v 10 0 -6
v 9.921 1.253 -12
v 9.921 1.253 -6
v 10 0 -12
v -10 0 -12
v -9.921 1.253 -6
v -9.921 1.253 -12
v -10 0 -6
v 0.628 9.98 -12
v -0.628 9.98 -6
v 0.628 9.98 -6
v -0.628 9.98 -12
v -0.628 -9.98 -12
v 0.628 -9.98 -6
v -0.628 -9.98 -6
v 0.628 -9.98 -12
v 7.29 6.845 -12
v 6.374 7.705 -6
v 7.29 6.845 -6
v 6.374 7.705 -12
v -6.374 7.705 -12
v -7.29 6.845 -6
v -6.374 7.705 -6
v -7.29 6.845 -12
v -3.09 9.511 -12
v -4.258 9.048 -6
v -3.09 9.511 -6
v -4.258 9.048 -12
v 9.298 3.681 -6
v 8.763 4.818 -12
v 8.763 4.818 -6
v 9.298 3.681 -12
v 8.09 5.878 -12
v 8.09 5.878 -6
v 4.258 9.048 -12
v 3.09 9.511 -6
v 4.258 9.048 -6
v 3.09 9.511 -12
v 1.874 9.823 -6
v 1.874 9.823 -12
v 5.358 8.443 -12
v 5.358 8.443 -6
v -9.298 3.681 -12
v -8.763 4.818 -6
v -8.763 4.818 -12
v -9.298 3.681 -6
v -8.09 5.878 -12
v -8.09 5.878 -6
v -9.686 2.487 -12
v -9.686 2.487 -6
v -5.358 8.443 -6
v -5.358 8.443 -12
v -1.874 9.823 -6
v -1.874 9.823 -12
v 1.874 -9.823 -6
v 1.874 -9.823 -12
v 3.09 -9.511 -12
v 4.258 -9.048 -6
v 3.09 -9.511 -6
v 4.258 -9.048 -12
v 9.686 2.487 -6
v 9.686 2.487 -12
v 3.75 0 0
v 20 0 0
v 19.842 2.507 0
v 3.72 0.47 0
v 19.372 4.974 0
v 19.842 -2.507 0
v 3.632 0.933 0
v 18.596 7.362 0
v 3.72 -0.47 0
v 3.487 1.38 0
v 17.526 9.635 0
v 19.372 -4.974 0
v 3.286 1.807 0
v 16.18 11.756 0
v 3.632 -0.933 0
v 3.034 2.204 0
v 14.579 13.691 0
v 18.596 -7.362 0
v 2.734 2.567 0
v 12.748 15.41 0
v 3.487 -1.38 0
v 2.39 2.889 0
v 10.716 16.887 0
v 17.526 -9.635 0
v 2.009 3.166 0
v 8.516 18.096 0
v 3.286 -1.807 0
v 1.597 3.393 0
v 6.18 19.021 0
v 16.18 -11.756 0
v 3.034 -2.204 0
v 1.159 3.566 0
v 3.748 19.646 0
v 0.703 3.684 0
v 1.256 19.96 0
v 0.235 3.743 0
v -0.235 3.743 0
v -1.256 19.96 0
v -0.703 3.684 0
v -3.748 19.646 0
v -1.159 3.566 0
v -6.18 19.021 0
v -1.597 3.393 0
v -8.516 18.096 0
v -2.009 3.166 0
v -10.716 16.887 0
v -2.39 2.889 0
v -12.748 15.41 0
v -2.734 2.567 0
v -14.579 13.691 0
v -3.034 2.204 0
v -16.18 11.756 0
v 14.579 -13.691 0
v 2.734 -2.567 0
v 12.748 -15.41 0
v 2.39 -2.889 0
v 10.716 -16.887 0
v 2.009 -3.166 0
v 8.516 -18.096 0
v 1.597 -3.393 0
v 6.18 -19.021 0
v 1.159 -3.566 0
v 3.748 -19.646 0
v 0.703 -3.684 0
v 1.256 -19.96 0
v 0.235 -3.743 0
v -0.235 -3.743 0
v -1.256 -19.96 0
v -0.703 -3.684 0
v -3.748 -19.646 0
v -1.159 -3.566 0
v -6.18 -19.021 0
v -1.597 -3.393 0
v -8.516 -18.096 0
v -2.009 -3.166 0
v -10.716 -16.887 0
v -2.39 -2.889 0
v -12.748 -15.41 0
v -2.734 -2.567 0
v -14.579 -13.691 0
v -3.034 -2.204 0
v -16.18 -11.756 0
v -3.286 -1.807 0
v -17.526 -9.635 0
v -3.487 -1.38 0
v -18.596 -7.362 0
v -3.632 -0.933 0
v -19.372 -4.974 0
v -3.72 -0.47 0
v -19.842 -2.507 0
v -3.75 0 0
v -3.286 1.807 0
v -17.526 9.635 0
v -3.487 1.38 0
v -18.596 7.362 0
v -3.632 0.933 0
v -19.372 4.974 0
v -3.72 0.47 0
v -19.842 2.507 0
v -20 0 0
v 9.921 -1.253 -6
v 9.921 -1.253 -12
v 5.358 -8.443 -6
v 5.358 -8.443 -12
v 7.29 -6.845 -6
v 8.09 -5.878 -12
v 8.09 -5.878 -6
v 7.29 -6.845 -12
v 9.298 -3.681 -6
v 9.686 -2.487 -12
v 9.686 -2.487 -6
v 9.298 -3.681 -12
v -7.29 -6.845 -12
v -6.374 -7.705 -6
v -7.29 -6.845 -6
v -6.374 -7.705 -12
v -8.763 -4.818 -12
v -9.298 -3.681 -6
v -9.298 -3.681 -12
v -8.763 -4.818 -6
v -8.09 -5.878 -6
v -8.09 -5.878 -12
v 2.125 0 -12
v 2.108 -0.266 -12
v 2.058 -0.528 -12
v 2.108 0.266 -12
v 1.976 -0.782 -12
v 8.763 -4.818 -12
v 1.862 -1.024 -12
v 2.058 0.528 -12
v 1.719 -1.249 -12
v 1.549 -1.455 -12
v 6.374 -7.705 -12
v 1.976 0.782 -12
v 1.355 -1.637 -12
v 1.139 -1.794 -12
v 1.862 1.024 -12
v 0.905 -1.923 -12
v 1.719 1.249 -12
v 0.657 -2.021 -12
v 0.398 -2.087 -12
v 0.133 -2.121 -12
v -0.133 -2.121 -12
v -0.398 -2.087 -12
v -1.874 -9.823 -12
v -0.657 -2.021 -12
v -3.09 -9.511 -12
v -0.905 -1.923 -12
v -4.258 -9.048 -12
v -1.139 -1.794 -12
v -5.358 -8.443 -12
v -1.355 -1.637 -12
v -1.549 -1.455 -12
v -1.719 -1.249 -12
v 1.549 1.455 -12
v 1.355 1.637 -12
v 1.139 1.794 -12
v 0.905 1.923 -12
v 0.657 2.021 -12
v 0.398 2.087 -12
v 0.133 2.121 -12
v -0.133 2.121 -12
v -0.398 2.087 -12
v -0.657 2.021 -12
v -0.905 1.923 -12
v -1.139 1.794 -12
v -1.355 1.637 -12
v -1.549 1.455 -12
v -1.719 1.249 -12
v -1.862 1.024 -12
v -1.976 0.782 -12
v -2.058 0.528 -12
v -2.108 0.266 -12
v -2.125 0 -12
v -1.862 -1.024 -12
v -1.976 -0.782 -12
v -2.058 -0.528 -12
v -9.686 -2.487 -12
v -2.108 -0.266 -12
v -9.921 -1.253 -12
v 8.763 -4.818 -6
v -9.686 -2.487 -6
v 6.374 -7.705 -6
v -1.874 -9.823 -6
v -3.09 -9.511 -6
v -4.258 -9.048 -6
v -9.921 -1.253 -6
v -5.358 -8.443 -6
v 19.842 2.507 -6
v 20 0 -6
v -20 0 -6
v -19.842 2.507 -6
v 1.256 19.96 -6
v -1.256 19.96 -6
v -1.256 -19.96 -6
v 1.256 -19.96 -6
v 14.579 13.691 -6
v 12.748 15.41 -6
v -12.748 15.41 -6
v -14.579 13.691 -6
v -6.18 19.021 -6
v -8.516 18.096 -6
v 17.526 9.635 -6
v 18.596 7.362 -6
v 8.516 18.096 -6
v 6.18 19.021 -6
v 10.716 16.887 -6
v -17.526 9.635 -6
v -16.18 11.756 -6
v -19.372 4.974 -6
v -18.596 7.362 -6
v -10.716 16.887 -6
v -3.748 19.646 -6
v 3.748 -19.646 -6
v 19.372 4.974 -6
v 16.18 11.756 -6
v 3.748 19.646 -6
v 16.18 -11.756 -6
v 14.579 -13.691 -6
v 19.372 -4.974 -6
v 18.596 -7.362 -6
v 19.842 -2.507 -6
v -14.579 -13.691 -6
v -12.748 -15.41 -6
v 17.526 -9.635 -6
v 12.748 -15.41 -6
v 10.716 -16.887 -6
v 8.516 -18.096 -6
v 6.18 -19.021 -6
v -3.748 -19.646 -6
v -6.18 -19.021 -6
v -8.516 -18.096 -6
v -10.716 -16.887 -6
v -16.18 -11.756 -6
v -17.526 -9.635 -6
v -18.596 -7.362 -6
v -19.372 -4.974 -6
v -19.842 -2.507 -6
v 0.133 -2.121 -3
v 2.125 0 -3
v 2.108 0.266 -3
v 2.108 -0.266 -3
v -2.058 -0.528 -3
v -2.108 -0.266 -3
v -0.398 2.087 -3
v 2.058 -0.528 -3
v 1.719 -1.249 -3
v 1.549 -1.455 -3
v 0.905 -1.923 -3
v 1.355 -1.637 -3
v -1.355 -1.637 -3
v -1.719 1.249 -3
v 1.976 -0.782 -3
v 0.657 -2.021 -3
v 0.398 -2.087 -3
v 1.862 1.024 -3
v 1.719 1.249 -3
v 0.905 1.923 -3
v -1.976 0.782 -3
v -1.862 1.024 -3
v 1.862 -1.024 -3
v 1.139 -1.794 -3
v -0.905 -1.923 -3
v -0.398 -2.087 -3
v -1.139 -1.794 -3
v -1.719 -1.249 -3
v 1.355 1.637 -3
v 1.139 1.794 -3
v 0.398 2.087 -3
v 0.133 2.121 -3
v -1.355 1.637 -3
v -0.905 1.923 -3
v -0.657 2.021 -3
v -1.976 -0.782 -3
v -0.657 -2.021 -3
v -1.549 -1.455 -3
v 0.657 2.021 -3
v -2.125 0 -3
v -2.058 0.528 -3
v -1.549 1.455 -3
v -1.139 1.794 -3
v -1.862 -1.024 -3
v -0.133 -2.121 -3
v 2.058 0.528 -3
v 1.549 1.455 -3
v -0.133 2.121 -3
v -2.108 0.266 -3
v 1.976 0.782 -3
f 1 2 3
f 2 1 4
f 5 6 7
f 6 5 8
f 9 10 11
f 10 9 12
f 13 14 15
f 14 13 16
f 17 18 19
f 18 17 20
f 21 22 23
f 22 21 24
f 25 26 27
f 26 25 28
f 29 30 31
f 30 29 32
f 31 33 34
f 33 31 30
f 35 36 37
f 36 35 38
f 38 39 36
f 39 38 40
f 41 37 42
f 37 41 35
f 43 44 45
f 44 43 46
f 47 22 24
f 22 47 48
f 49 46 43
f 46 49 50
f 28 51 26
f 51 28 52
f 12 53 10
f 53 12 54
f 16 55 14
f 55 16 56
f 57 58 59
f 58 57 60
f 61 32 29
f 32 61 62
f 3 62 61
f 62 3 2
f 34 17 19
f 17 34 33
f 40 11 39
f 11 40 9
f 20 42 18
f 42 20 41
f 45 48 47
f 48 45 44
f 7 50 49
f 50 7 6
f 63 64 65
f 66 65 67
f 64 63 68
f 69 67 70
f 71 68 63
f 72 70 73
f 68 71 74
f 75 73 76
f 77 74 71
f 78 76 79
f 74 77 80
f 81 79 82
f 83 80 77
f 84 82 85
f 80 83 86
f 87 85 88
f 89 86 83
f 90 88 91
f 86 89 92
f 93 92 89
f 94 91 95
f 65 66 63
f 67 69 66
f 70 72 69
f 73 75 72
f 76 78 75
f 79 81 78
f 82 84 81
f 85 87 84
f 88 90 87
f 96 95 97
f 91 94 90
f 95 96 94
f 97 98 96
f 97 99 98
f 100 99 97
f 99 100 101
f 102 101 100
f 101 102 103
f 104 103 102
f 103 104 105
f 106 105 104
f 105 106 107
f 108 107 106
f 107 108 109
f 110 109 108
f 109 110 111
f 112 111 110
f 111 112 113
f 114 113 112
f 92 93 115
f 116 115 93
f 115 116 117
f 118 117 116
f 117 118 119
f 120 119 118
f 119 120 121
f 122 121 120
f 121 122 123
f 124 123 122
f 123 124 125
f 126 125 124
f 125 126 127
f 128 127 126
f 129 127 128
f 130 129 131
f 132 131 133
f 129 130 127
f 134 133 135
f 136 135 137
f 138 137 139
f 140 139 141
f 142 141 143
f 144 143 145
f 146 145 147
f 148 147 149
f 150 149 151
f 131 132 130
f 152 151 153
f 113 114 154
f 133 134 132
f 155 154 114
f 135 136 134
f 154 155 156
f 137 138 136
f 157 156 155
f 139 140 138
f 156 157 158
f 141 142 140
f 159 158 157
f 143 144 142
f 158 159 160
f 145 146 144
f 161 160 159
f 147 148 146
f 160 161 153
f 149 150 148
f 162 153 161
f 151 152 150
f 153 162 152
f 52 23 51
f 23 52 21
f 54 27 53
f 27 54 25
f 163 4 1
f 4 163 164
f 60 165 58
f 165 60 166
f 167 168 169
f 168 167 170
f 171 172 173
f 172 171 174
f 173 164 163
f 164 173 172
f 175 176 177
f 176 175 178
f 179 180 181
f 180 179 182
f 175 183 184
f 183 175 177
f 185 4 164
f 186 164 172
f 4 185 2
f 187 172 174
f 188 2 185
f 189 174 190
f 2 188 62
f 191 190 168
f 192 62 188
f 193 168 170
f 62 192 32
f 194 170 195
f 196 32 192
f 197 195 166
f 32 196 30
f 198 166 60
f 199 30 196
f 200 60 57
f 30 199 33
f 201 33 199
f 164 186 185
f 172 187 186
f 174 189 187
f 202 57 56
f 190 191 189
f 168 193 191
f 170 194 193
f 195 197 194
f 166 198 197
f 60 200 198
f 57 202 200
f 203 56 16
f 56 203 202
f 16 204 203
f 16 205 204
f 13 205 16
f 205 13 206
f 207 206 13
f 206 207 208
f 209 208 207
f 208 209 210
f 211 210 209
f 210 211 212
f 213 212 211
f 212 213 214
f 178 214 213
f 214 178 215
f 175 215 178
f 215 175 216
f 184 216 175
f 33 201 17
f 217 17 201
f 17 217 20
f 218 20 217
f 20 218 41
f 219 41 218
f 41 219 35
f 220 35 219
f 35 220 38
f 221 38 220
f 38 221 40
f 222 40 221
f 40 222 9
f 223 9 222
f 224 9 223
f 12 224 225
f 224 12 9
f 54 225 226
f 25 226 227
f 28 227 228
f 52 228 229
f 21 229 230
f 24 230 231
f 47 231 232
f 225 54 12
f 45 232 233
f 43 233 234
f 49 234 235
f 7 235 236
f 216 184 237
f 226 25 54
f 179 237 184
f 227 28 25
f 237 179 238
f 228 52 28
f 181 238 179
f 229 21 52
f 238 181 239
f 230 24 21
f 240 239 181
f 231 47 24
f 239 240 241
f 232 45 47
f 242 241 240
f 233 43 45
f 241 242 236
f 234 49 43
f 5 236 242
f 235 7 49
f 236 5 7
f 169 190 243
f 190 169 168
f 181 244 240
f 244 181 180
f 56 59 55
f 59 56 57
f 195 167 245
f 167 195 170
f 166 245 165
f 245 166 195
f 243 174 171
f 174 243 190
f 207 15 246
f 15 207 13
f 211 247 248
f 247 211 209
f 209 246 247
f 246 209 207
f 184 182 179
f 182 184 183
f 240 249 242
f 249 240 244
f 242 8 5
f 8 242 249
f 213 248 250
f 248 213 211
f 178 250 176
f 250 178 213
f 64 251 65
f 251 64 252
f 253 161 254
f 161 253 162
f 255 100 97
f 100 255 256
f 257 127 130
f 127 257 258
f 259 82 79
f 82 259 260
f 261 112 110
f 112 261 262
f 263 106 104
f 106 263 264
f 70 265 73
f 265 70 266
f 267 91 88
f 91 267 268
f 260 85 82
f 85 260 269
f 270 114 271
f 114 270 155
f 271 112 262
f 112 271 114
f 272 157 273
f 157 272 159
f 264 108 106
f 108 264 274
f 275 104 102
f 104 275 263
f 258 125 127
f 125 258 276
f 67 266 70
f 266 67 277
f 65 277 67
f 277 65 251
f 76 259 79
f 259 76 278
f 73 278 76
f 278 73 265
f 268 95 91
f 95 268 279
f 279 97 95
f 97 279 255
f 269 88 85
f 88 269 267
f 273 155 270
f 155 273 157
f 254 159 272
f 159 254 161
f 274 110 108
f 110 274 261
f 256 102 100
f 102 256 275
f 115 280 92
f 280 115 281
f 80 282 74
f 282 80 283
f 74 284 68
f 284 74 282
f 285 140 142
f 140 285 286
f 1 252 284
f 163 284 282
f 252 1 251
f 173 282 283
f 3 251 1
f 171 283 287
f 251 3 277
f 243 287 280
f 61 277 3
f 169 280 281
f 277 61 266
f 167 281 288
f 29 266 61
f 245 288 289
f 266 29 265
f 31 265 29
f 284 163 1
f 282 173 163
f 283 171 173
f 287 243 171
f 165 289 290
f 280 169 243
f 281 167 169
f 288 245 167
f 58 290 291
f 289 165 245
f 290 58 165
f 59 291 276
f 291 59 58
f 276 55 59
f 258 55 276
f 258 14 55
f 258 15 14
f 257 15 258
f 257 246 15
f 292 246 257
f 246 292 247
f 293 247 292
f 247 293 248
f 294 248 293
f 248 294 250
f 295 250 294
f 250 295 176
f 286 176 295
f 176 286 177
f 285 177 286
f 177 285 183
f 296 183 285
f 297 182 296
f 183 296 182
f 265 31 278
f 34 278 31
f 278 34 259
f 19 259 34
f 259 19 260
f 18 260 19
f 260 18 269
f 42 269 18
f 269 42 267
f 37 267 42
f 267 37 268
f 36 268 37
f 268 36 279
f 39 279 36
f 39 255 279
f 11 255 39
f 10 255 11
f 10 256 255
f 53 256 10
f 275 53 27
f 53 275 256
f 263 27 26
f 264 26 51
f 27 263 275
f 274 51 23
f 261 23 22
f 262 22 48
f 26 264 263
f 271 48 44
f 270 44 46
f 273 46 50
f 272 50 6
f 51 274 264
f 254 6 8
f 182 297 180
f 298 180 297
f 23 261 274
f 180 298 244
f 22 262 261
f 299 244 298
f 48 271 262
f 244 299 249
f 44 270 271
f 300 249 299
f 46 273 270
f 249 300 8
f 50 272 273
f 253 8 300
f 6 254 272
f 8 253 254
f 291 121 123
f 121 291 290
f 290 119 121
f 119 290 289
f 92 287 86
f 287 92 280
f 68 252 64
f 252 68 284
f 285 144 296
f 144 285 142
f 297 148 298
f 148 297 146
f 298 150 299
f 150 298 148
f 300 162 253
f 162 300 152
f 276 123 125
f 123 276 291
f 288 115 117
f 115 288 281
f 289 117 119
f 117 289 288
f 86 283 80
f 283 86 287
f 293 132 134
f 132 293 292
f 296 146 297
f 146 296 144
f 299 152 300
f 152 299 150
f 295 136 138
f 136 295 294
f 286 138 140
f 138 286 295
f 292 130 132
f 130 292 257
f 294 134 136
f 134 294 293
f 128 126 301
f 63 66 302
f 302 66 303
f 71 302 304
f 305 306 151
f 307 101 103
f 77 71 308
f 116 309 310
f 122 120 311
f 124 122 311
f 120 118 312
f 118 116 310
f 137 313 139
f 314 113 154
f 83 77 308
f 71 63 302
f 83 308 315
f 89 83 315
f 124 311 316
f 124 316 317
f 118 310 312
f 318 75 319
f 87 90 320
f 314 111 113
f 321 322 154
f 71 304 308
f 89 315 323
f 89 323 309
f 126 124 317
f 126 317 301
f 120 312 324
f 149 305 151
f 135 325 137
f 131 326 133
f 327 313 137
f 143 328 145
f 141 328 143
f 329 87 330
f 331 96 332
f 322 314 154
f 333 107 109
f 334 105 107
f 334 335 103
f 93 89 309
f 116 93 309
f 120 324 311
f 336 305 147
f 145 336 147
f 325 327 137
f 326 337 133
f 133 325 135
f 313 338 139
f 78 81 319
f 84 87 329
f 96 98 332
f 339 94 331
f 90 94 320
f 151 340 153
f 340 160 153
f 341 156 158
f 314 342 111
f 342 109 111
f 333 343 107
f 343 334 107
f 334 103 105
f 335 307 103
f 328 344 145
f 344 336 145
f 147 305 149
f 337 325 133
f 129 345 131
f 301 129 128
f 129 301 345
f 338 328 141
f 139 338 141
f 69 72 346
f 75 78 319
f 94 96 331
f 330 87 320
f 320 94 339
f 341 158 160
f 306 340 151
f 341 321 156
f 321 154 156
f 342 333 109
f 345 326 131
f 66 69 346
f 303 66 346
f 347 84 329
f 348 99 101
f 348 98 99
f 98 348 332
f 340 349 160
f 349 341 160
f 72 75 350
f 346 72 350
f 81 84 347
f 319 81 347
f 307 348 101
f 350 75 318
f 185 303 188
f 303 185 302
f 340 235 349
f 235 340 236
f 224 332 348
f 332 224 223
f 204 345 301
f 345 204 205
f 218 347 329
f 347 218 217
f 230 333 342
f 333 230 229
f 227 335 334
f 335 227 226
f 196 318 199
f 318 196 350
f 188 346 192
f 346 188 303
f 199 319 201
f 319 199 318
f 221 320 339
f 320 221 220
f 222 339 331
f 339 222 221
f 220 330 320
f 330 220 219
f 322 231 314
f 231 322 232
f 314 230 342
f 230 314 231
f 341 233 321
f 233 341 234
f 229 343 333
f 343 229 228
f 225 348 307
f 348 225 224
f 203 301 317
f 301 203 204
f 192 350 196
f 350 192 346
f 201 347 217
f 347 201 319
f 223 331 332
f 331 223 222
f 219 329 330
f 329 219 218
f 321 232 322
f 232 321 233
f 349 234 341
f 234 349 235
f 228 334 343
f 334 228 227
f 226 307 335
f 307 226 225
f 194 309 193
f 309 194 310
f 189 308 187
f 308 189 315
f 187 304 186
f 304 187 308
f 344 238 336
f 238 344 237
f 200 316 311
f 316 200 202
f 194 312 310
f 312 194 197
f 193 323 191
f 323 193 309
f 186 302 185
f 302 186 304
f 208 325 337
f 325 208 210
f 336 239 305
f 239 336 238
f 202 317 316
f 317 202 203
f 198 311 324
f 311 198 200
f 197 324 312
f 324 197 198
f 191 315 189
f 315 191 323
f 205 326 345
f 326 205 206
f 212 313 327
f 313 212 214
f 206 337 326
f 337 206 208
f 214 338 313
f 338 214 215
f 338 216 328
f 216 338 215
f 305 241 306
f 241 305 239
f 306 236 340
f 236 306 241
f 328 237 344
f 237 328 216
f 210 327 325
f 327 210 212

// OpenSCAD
$fn = 50;


difference() {
	union() {
		translate(v = [0, 0, -12.0000000000]) {
			cylinder(h = 12, r = 10.0000000000);
		}
		translate(v = [0, 0, -6.0000000000]) {
			cylinder(h = 6, r = 20.0000000000);
		}
	}
	union() {
		translate(v = [0, 0, 0]) {
			rotate(a = [0, 0, 0]) {
				difference() {
					union() {
						#translate(v = [0, 0, -12.0000000000]) {
							cylinder(h = 12, r = 2.0000000000);
						}
						#translate(v = [0, 0, -3]) {
							cylinder(h = 3, r = 10.0000000000, r1 = 2.1250000000, r2 = 3.7500000000);
						}
						#translate(v = [0, 0, -12.0000000000]) {
							cylinder(h = 12, r = 2.1250000000);
						}
						#translate(v = [0, 0, -12.0000000000]) {
							cylinder(h = 12, r = 2.0000000000);
						}
					}
					union();
				}
			}
		}
	}
}
